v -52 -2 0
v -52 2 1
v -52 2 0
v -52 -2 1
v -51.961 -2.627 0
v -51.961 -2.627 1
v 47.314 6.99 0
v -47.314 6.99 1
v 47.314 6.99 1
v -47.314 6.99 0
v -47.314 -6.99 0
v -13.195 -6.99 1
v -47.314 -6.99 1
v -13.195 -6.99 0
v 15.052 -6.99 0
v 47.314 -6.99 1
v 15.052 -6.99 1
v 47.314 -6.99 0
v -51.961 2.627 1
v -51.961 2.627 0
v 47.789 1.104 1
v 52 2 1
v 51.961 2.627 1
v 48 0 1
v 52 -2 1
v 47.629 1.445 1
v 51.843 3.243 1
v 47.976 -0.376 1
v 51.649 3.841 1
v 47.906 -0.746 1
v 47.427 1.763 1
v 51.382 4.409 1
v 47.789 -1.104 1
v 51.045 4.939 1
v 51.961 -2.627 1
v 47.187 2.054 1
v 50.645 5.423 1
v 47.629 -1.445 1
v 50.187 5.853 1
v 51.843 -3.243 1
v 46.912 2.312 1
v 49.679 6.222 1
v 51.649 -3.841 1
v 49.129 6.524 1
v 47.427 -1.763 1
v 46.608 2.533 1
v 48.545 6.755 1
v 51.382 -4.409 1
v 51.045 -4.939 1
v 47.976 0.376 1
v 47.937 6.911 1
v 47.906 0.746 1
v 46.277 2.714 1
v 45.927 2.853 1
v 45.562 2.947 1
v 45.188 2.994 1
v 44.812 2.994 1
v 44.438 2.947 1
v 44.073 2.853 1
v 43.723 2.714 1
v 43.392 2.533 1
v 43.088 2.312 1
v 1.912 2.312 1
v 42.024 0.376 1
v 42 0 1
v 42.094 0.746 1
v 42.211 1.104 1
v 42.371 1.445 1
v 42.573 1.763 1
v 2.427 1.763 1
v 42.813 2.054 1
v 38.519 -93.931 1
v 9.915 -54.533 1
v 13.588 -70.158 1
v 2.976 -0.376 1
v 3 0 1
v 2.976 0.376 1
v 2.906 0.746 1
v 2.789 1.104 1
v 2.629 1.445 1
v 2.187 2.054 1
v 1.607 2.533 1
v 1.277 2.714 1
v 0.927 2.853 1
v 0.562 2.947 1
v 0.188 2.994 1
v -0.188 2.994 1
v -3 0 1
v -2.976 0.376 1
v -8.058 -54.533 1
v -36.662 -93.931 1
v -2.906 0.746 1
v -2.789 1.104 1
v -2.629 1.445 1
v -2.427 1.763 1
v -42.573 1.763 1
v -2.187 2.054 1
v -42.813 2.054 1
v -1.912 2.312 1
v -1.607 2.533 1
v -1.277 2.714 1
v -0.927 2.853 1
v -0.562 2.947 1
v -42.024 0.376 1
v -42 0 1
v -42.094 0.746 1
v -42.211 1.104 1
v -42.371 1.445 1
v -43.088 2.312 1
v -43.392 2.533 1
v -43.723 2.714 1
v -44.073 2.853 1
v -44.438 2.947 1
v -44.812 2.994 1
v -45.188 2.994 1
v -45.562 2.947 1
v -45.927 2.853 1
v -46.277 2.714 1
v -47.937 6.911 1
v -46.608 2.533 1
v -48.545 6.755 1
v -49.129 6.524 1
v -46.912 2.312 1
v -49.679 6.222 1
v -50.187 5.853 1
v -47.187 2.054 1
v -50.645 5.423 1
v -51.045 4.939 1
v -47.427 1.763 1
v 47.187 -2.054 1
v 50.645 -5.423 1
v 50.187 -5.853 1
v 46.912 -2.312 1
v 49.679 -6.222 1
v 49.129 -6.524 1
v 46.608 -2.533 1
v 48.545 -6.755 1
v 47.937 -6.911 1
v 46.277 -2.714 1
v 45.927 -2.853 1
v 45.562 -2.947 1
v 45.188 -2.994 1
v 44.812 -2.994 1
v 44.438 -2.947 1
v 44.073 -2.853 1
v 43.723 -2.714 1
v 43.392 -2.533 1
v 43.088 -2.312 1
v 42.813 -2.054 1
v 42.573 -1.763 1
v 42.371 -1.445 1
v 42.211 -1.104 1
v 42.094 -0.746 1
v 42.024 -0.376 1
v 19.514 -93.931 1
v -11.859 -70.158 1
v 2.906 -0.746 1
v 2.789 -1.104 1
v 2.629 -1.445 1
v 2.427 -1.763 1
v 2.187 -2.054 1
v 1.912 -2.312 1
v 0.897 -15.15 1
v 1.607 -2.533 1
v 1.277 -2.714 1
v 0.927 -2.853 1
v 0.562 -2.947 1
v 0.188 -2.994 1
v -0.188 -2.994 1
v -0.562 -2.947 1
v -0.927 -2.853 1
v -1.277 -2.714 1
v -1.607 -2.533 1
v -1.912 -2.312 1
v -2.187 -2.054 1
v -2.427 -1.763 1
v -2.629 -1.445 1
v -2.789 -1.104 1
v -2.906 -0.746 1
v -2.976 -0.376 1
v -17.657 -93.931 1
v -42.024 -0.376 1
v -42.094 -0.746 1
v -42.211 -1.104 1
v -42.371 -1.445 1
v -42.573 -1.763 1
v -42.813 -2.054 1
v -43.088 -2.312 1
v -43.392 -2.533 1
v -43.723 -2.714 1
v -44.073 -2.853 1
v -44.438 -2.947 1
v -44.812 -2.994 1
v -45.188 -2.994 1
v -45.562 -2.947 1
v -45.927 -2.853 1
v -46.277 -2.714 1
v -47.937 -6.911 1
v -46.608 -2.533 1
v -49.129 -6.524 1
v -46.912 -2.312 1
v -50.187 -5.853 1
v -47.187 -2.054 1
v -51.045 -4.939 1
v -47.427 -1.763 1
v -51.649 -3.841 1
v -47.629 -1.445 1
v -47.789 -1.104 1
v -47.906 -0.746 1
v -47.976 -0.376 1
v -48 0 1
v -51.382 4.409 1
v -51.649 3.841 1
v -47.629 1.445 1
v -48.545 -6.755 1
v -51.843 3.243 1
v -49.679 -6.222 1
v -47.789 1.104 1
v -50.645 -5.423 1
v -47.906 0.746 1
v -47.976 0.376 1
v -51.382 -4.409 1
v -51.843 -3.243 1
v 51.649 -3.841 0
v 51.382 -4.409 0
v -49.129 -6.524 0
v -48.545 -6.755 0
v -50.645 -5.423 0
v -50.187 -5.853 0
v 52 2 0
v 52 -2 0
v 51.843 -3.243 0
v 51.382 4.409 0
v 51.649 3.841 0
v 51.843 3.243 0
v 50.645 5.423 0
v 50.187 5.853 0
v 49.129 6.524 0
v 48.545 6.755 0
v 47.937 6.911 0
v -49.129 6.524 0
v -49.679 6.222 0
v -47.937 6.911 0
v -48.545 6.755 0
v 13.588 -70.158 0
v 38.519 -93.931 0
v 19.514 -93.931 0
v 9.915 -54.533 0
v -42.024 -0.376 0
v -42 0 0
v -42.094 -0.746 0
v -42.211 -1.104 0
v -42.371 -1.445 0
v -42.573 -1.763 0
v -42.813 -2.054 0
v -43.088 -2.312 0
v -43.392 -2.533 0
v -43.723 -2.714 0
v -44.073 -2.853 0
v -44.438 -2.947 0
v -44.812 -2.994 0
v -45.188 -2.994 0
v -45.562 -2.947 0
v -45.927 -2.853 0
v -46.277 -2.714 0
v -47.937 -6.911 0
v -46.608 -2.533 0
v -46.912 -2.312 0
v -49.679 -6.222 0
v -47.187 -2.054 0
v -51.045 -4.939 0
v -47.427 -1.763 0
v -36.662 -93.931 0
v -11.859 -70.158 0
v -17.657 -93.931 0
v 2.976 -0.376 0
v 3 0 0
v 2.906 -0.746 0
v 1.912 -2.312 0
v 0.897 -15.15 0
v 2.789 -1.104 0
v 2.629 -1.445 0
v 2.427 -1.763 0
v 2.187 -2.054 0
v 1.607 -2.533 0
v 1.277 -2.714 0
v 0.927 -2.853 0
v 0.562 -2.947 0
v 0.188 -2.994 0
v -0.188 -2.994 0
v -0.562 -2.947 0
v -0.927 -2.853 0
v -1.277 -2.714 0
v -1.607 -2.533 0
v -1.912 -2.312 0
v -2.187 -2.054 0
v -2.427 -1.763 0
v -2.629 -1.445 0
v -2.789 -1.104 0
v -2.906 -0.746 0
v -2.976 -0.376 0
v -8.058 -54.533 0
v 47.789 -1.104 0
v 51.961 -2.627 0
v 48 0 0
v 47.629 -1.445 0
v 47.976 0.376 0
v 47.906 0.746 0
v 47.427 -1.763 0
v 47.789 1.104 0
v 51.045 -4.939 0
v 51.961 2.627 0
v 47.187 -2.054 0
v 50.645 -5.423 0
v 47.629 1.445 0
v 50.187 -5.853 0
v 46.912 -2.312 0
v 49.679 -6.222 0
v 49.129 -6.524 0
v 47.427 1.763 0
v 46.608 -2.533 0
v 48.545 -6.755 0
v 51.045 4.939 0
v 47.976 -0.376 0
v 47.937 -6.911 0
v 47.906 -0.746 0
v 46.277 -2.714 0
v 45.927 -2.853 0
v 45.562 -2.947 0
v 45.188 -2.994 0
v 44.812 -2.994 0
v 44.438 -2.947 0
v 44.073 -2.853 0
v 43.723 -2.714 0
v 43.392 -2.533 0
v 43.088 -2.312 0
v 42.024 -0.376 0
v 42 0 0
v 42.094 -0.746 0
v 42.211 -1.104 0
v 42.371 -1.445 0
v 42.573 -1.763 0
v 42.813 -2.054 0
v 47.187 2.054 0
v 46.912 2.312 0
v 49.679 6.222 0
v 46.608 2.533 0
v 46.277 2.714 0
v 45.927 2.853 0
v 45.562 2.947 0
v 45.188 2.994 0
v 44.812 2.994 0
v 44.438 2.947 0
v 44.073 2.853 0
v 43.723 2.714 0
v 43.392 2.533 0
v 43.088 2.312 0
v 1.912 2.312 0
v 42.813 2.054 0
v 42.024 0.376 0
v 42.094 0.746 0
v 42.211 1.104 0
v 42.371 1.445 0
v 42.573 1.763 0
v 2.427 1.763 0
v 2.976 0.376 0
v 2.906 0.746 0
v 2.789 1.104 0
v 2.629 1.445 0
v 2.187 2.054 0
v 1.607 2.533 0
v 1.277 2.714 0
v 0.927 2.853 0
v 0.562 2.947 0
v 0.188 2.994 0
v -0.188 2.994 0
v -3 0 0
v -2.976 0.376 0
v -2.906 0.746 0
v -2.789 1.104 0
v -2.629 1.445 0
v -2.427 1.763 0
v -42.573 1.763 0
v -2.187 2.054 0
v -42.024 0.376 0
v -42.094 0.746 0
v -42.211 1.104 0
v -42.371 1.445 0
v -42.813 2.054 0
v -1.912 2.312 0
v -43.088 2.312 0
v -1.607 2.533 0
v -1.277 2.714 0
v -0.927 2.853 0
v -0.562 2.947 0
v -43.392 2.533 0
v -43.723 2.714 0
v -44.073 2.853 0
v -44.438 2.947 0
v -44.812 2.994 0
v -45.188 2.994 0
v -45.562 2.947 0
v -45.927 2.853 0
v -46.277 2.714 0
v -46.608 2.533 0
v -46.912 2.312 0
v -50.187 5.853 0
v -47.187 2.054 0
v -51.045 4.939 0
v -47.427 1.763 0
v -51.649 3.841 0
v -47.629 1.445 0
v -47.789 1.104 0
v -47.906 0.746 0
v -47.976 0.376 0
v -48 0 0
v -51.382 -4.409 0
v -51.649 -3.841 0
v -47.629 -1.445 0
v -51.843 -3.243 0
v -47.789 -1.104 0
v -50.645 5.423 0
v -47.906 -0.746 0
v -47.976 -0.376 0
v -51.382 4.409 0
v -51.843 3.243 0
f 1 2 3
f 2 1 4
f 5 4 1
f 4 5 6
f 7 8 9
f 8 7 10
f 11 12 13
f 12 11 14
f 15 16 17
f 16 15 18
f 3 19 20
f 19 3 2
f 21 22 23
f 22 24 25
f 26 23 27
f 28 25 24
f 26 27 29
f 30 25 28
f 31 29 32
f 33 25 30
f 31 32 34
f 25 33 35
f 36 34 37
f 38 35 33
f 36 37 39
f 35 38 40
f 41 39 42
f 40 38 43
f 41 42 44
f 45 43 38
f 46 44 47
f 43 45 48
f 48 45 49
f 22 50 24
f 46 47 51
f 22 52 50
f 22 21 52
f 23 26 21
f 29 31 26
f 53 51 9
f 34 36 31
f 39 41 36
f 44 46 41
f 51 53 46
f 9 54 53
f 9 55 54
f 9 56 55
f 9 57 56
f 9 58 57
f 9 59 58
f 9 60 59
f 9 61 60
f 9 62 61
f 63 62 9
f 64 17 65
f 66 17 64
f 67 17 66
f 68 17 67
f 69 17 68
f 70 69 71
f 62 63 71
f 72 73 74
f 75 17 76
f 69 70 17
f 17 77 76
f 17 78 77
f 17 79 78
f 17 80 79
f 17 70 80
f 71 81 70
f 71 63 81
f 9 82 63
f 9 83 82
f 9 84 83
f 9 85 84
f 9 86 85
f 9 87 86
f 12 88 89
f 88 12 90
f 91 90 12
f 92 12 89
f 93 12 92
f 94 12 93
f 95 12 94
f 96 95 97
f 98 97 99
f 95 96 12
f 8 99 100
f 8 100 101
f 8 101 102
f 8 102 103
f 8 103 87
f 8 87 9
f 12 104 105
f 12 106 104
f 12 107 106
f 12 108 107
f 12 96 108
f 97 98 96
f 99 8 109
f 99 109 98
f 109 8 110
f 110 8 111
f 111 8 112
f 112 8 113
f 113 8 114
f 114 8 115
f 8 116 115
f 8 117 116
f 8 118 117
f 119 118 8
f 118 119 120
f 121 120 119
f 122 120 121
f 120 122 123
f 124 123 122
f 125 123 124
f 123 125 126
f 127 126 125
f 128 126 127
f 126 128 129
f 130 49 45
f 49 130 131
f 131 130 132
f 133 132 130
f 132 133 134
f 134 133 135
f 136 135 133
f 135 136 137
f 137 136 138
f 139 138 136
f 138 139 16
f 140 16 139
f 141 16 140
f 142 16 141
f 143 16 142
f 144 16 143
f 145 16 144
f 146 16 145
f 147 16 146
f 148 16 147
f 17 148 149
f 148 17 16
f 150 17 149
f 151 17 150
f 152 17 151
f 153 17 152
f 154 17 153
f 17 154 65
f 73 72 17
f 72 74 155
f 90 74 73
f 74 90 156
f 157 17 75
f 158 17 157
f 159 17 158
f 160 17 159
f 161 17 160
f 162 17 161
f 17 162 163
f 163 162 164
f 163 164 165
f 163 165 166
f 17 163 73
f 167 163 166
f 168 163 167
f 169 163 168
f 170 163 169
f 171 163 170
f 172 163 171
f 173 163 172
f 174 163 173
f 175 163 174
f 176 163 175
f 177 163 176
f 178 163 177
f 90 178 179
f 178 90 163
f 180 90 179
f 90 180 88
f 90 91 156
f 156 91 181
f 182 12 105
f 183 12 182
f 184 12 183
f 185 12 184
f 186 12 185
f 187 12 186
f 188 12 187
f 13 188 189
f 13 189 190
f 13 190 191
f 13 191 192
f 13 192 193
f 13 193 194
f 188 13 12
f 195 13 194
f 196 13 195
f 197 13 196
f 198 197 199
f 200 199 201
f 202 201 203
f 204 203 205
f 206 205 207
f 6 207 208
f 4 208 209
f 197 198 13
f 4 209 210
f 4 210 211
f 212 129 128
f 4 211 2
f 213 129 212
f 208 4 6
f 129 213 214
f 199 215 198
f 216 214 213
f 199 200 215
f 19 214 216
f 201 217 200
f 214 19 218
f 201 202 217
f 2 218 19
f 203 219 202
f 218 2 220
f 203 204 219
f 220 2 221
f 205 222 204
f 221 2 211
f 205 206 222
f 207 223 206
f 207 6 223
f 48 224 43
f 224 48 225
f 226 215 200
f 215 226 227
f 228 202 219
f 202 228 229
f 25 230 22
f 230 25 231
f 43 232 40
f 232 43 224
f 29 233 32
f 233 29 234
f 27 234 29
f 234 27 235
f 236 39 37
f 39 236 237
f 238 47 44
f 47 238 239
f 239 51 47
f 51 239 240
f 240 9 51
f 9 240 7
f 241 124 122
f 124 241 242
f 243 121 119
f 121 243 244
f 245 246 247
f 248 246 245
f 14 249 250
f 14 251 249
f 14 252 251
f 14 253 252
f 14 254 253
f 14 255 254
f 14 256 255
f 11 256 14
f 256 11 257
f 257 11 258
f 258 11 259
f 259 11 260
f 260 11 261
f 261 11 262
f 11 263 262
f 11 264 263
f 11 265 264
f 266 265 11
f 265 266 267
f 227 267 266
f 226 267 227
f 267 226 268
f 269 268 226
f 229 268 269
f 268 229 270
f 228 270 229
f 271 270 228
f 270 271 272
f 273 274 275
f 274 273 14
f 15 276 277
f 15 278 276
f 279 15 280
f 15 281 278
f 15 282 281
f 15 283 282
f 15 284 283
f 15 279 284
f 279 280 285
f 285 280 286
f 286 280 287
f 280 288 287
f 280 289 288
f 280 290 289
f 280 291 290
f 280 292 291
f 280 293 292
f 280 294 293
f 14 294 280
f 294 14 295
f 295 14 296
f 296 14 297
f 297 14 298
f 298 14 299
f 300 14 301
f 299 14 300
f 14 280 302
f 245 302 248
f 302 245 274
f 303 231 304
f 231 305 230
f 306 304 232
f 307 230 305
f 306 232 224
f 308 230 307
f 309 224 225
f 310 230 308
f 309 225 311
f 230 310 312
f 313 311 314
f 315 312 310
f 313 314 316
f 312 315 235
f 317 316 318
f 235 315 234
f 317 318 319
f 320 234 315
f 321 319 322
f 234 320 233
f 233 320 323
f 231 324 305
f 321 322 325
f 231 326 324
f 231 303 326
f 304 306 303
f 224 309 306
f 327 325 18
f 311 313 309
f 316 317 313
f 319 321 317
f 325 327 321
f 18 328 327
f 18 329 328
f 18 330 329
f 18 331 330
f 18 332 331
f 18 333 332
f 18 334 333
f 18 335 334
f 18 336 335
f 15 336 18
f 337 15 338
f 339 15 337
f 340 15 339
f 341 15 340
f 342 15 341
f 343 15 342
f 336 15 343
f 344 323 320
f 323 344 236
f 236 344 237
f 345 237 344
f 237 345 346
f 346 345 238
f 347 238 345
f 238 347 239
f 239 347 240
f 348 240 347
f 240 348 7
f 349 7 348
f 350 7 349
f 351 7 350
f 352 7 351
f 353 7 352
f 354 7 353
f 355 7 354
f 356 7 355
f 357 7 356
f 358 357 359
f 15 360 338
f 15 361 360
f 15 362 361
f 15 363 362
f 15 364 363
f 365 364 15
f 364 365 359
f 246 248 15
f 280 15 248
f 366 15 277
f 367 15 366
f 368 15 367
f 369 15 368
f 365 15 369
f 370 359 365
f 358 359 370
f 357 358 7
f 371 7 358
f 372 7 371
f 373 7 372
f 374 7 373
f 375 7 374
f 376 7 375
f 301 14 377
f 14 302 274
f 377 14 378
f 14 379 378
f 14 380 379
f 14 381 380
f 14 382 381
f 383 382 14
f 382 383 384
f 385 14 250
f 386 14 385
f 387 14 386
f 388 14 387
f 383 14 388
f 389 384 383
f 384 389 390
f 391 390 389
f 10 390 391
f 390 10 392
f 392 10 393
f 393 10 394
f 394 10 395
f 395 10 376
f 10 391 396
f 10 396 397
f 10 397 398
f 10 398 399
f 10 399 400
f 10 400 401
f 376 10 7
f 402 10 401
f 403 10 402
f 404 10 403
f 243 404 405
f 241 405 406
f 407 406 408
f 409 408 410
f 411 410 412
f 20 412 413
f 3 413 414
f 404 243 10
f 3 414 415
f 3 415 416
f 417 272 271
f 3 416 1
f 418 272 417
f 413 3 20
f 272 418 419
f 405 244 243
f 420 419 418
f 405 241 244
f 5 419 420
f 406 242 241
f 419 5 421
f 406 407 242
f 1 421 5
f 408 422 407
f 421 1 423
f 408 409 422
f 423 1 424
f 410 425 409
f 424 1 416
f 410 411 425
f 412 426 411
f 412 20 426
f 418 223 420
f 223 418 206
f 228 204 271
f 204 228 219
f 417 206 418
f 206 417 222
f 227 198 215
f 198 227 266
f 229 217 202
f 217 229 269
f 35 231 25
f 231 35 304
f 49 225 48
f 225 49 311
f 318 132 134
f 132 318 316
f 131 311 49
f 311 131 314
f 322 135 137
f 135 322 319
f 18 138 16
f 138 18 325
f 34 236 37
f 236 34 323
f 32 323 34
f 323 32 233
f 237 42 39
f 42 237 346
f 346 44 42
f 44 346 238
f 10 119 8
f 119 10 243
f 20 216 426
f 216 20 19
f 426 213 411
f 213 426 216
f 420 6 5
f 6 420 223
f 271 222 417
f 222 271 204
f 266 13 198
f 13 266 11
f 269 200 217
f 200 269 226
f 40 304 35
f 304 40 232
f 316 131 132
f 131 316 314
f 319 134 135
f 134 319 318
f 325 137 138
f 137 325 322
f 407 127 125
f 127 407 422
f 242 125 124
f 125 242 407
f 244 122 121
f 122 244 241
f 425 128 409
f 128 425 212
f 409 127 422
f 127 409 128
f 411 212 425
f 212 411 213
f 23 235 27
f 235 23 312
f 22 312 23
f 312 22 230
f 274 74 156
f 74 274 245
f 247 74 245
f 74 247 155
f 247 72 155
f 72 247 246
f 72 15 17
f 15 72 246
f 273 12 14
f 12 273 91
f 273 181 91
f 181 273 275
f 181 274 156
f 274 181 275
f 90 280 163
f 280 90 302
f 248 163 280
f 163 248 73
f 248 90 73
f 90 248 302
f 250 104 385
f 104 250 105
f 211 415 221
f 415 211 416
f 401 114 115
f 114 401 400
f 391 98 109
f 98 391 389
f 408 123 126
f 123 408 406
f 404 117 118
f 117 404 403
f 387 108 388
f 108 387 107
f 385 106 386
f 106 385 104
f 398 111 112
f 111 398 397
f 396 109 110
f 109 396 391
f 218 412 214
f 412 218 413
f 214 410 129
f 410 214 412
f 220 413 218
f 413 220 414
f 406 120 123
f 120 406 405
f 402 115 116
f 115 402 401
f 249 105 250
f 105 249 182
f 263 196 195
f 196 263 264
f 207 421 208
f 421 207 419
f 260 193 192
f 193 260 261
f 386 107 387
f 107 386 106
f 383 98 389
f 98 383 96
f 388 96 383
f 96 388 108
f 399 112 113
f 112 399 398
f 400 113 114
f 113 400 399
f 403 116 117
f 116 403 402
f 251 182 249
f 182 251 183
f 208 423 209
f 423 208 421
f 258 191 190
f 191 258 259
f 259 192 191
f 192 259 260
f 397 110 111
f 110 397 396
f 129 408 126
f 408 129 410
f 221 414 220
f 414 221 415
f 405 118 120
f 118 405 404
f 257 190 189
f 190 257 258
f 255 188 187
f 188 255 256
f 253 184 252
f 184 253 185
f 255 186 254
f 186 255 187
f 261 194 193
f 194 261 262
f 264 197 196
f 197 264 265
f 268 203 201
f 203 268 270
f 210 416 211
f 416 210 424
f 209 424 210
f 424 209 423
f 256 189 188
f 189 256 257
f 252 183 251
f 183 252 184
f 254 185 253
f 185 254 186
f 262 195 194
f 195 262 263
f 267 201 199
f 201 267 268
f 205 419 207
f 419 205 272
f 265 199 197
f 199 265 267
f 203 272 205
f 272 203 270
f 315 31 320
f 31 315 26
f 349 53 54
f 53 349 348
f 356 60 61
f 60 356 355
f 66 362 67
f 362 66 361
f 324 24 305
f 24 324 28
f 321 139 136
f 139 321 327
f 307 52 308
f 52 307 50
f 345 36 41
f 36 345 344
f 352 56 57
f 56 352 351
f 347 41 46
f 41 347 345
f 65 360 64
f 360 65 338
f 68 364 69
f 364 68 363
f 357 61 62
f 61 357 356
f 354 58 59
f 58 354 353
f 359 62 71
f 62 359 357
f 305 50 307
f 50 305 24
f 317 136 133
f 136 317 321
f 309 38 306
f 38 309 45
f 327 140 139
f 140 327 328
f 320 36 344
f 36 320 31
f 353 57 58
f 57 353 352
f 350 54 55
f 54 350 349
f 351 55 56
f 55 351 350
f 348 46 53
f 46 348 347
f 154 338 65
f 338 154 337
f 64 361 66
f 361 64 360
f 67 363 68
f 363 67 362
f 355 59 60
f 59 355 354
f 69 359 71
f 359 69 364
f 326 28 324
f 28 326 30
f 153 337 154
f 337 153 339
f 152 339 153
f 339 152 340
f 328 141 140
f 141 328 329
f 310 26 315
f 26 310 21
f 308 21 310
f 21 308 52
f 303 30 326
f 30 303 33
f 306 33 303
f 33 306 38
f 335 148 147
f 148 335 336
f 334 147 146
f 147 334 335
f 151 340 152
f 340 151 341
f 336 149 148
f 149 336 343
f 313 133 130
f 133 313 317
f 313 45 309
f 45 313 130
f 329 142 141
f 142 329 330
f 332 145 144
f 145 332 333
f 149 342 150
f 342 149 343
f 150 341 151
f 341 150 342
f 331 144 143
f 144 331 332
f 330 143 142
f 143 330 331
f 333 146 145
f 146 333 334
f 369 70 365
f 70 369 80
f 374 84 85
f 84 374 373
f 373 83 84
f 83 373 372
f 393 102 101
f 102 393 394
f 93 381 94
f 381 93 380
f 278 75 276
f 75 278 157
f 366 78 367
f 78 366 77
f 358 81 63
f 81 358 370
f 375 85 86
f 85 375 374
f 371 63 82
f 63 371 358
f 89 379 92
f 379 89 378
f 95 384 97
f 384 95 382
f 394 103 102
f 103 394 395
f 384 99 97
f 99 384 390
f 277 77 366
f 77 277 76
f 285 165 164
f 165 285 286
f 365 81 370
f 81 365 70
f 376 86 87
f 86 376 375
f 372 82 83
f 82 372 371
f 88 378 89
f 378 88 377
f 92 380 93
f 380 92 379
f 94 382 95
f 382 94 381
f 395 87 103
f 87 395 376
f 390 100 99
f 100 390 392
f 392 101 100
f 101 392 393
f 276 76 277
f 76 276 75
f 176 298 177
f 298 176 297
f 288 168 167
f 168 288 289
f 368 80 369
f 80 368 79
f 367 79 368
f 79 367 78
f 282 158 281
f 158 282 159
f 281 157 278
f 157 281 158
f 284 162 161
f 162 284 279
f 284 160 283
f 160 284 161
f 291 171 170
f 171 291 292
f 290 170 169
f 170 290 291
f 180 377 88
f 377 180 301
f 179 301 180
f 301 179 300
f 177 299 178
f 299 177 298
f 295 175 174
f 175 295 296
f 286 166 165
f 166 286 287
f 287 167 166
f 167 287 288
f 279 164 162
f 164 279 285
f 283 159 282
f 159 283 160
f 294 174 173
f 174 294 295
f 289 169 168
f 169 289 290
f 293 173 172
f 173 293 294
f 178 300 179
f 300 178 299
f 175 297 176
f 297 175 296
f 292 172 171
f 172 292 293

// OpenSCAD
$fn = 50;


difference() {
	union() {
		translate(v = [0, 0, 0]) {
			rotate(a = [0, 0, 0]) {
				hull() {
					translate(v = [-47.0000000000, 2.0000000000, 0]) {
						rotate(a = [0, 0, 0]) {
							translate(v = [0, 0, 0]) {
								rotate(a = [0, 0, 0]) {
									cylinder(h = 1, r = 5);
								}
							}
						}
					}
					translate(v = [47.0000000000, 2.0000000000, 0]) {
						rotate(a = [0, 0, 0]) {
							translate(v = [0, 0, 0]) {
								rotate(a = [0, 0, 0]) {
									cylinder(h = 1, r = 5);
								}
							}
						}
					}
					translate(v = [-47.0000000000, -2.0000000000, 0]) {
						rotate(a = [0, 0, 0]) {
							translate(v = [0, 0, 0]) {
								rotate(a = [0, 0, 0]) {
									cylinder(h = 1, r = 5);
								}
							}
						}
					}
					translate(v = [47.0000000000, -2.0000000000, 0]) {
						rotate(a = [0, 0, 0]) {
							translate(v = [0, 0, 0]) {
								rotate(a = [0, 0, 0]) {
									cylinder(h = 1, r = 5);
								}
							}
						}
					}
				}
			}
		}
		translate(v = [0, 0, 0]) {
			rotate(a = [0, 0, 0]) {
				linear_extrude(height = 1) {
					text(font = "DejaVu Sans Mono:style=Bold", halign = "center", size = 95.0000000000, text = "A", valign = "top");
				}
			}
		}
	}
	union() {
		translate(v = [-45.0000000000, 0.0000000000, -125.0000000000]) {
			rotate(a = [0, 0, 0]) {
				cylinder(h = 250, r = 3.0000000000);
			}
		}
		translate(v = [45.0000000000, 0.0000000000, -125.0000000000]) {
			rotate(a = [0, 0, 0]) {
				cylinder(h = 250, r = 3.0000000000);
			}
		}
		translate(v = [45.0000000000, 0.0000000000, -125.0000000000]) {
			rotate(a = [0, 0, 0]) {
				cylinder(h = 250, r = 3.0000000000);
			}
		}
		translate(v = [0, 0, -125.0000000000]) {
			rotate(a = [0, 0, 0]) {
				cylinder(h = 250, r = 3.0000000000);
			}
		}
	}
}
